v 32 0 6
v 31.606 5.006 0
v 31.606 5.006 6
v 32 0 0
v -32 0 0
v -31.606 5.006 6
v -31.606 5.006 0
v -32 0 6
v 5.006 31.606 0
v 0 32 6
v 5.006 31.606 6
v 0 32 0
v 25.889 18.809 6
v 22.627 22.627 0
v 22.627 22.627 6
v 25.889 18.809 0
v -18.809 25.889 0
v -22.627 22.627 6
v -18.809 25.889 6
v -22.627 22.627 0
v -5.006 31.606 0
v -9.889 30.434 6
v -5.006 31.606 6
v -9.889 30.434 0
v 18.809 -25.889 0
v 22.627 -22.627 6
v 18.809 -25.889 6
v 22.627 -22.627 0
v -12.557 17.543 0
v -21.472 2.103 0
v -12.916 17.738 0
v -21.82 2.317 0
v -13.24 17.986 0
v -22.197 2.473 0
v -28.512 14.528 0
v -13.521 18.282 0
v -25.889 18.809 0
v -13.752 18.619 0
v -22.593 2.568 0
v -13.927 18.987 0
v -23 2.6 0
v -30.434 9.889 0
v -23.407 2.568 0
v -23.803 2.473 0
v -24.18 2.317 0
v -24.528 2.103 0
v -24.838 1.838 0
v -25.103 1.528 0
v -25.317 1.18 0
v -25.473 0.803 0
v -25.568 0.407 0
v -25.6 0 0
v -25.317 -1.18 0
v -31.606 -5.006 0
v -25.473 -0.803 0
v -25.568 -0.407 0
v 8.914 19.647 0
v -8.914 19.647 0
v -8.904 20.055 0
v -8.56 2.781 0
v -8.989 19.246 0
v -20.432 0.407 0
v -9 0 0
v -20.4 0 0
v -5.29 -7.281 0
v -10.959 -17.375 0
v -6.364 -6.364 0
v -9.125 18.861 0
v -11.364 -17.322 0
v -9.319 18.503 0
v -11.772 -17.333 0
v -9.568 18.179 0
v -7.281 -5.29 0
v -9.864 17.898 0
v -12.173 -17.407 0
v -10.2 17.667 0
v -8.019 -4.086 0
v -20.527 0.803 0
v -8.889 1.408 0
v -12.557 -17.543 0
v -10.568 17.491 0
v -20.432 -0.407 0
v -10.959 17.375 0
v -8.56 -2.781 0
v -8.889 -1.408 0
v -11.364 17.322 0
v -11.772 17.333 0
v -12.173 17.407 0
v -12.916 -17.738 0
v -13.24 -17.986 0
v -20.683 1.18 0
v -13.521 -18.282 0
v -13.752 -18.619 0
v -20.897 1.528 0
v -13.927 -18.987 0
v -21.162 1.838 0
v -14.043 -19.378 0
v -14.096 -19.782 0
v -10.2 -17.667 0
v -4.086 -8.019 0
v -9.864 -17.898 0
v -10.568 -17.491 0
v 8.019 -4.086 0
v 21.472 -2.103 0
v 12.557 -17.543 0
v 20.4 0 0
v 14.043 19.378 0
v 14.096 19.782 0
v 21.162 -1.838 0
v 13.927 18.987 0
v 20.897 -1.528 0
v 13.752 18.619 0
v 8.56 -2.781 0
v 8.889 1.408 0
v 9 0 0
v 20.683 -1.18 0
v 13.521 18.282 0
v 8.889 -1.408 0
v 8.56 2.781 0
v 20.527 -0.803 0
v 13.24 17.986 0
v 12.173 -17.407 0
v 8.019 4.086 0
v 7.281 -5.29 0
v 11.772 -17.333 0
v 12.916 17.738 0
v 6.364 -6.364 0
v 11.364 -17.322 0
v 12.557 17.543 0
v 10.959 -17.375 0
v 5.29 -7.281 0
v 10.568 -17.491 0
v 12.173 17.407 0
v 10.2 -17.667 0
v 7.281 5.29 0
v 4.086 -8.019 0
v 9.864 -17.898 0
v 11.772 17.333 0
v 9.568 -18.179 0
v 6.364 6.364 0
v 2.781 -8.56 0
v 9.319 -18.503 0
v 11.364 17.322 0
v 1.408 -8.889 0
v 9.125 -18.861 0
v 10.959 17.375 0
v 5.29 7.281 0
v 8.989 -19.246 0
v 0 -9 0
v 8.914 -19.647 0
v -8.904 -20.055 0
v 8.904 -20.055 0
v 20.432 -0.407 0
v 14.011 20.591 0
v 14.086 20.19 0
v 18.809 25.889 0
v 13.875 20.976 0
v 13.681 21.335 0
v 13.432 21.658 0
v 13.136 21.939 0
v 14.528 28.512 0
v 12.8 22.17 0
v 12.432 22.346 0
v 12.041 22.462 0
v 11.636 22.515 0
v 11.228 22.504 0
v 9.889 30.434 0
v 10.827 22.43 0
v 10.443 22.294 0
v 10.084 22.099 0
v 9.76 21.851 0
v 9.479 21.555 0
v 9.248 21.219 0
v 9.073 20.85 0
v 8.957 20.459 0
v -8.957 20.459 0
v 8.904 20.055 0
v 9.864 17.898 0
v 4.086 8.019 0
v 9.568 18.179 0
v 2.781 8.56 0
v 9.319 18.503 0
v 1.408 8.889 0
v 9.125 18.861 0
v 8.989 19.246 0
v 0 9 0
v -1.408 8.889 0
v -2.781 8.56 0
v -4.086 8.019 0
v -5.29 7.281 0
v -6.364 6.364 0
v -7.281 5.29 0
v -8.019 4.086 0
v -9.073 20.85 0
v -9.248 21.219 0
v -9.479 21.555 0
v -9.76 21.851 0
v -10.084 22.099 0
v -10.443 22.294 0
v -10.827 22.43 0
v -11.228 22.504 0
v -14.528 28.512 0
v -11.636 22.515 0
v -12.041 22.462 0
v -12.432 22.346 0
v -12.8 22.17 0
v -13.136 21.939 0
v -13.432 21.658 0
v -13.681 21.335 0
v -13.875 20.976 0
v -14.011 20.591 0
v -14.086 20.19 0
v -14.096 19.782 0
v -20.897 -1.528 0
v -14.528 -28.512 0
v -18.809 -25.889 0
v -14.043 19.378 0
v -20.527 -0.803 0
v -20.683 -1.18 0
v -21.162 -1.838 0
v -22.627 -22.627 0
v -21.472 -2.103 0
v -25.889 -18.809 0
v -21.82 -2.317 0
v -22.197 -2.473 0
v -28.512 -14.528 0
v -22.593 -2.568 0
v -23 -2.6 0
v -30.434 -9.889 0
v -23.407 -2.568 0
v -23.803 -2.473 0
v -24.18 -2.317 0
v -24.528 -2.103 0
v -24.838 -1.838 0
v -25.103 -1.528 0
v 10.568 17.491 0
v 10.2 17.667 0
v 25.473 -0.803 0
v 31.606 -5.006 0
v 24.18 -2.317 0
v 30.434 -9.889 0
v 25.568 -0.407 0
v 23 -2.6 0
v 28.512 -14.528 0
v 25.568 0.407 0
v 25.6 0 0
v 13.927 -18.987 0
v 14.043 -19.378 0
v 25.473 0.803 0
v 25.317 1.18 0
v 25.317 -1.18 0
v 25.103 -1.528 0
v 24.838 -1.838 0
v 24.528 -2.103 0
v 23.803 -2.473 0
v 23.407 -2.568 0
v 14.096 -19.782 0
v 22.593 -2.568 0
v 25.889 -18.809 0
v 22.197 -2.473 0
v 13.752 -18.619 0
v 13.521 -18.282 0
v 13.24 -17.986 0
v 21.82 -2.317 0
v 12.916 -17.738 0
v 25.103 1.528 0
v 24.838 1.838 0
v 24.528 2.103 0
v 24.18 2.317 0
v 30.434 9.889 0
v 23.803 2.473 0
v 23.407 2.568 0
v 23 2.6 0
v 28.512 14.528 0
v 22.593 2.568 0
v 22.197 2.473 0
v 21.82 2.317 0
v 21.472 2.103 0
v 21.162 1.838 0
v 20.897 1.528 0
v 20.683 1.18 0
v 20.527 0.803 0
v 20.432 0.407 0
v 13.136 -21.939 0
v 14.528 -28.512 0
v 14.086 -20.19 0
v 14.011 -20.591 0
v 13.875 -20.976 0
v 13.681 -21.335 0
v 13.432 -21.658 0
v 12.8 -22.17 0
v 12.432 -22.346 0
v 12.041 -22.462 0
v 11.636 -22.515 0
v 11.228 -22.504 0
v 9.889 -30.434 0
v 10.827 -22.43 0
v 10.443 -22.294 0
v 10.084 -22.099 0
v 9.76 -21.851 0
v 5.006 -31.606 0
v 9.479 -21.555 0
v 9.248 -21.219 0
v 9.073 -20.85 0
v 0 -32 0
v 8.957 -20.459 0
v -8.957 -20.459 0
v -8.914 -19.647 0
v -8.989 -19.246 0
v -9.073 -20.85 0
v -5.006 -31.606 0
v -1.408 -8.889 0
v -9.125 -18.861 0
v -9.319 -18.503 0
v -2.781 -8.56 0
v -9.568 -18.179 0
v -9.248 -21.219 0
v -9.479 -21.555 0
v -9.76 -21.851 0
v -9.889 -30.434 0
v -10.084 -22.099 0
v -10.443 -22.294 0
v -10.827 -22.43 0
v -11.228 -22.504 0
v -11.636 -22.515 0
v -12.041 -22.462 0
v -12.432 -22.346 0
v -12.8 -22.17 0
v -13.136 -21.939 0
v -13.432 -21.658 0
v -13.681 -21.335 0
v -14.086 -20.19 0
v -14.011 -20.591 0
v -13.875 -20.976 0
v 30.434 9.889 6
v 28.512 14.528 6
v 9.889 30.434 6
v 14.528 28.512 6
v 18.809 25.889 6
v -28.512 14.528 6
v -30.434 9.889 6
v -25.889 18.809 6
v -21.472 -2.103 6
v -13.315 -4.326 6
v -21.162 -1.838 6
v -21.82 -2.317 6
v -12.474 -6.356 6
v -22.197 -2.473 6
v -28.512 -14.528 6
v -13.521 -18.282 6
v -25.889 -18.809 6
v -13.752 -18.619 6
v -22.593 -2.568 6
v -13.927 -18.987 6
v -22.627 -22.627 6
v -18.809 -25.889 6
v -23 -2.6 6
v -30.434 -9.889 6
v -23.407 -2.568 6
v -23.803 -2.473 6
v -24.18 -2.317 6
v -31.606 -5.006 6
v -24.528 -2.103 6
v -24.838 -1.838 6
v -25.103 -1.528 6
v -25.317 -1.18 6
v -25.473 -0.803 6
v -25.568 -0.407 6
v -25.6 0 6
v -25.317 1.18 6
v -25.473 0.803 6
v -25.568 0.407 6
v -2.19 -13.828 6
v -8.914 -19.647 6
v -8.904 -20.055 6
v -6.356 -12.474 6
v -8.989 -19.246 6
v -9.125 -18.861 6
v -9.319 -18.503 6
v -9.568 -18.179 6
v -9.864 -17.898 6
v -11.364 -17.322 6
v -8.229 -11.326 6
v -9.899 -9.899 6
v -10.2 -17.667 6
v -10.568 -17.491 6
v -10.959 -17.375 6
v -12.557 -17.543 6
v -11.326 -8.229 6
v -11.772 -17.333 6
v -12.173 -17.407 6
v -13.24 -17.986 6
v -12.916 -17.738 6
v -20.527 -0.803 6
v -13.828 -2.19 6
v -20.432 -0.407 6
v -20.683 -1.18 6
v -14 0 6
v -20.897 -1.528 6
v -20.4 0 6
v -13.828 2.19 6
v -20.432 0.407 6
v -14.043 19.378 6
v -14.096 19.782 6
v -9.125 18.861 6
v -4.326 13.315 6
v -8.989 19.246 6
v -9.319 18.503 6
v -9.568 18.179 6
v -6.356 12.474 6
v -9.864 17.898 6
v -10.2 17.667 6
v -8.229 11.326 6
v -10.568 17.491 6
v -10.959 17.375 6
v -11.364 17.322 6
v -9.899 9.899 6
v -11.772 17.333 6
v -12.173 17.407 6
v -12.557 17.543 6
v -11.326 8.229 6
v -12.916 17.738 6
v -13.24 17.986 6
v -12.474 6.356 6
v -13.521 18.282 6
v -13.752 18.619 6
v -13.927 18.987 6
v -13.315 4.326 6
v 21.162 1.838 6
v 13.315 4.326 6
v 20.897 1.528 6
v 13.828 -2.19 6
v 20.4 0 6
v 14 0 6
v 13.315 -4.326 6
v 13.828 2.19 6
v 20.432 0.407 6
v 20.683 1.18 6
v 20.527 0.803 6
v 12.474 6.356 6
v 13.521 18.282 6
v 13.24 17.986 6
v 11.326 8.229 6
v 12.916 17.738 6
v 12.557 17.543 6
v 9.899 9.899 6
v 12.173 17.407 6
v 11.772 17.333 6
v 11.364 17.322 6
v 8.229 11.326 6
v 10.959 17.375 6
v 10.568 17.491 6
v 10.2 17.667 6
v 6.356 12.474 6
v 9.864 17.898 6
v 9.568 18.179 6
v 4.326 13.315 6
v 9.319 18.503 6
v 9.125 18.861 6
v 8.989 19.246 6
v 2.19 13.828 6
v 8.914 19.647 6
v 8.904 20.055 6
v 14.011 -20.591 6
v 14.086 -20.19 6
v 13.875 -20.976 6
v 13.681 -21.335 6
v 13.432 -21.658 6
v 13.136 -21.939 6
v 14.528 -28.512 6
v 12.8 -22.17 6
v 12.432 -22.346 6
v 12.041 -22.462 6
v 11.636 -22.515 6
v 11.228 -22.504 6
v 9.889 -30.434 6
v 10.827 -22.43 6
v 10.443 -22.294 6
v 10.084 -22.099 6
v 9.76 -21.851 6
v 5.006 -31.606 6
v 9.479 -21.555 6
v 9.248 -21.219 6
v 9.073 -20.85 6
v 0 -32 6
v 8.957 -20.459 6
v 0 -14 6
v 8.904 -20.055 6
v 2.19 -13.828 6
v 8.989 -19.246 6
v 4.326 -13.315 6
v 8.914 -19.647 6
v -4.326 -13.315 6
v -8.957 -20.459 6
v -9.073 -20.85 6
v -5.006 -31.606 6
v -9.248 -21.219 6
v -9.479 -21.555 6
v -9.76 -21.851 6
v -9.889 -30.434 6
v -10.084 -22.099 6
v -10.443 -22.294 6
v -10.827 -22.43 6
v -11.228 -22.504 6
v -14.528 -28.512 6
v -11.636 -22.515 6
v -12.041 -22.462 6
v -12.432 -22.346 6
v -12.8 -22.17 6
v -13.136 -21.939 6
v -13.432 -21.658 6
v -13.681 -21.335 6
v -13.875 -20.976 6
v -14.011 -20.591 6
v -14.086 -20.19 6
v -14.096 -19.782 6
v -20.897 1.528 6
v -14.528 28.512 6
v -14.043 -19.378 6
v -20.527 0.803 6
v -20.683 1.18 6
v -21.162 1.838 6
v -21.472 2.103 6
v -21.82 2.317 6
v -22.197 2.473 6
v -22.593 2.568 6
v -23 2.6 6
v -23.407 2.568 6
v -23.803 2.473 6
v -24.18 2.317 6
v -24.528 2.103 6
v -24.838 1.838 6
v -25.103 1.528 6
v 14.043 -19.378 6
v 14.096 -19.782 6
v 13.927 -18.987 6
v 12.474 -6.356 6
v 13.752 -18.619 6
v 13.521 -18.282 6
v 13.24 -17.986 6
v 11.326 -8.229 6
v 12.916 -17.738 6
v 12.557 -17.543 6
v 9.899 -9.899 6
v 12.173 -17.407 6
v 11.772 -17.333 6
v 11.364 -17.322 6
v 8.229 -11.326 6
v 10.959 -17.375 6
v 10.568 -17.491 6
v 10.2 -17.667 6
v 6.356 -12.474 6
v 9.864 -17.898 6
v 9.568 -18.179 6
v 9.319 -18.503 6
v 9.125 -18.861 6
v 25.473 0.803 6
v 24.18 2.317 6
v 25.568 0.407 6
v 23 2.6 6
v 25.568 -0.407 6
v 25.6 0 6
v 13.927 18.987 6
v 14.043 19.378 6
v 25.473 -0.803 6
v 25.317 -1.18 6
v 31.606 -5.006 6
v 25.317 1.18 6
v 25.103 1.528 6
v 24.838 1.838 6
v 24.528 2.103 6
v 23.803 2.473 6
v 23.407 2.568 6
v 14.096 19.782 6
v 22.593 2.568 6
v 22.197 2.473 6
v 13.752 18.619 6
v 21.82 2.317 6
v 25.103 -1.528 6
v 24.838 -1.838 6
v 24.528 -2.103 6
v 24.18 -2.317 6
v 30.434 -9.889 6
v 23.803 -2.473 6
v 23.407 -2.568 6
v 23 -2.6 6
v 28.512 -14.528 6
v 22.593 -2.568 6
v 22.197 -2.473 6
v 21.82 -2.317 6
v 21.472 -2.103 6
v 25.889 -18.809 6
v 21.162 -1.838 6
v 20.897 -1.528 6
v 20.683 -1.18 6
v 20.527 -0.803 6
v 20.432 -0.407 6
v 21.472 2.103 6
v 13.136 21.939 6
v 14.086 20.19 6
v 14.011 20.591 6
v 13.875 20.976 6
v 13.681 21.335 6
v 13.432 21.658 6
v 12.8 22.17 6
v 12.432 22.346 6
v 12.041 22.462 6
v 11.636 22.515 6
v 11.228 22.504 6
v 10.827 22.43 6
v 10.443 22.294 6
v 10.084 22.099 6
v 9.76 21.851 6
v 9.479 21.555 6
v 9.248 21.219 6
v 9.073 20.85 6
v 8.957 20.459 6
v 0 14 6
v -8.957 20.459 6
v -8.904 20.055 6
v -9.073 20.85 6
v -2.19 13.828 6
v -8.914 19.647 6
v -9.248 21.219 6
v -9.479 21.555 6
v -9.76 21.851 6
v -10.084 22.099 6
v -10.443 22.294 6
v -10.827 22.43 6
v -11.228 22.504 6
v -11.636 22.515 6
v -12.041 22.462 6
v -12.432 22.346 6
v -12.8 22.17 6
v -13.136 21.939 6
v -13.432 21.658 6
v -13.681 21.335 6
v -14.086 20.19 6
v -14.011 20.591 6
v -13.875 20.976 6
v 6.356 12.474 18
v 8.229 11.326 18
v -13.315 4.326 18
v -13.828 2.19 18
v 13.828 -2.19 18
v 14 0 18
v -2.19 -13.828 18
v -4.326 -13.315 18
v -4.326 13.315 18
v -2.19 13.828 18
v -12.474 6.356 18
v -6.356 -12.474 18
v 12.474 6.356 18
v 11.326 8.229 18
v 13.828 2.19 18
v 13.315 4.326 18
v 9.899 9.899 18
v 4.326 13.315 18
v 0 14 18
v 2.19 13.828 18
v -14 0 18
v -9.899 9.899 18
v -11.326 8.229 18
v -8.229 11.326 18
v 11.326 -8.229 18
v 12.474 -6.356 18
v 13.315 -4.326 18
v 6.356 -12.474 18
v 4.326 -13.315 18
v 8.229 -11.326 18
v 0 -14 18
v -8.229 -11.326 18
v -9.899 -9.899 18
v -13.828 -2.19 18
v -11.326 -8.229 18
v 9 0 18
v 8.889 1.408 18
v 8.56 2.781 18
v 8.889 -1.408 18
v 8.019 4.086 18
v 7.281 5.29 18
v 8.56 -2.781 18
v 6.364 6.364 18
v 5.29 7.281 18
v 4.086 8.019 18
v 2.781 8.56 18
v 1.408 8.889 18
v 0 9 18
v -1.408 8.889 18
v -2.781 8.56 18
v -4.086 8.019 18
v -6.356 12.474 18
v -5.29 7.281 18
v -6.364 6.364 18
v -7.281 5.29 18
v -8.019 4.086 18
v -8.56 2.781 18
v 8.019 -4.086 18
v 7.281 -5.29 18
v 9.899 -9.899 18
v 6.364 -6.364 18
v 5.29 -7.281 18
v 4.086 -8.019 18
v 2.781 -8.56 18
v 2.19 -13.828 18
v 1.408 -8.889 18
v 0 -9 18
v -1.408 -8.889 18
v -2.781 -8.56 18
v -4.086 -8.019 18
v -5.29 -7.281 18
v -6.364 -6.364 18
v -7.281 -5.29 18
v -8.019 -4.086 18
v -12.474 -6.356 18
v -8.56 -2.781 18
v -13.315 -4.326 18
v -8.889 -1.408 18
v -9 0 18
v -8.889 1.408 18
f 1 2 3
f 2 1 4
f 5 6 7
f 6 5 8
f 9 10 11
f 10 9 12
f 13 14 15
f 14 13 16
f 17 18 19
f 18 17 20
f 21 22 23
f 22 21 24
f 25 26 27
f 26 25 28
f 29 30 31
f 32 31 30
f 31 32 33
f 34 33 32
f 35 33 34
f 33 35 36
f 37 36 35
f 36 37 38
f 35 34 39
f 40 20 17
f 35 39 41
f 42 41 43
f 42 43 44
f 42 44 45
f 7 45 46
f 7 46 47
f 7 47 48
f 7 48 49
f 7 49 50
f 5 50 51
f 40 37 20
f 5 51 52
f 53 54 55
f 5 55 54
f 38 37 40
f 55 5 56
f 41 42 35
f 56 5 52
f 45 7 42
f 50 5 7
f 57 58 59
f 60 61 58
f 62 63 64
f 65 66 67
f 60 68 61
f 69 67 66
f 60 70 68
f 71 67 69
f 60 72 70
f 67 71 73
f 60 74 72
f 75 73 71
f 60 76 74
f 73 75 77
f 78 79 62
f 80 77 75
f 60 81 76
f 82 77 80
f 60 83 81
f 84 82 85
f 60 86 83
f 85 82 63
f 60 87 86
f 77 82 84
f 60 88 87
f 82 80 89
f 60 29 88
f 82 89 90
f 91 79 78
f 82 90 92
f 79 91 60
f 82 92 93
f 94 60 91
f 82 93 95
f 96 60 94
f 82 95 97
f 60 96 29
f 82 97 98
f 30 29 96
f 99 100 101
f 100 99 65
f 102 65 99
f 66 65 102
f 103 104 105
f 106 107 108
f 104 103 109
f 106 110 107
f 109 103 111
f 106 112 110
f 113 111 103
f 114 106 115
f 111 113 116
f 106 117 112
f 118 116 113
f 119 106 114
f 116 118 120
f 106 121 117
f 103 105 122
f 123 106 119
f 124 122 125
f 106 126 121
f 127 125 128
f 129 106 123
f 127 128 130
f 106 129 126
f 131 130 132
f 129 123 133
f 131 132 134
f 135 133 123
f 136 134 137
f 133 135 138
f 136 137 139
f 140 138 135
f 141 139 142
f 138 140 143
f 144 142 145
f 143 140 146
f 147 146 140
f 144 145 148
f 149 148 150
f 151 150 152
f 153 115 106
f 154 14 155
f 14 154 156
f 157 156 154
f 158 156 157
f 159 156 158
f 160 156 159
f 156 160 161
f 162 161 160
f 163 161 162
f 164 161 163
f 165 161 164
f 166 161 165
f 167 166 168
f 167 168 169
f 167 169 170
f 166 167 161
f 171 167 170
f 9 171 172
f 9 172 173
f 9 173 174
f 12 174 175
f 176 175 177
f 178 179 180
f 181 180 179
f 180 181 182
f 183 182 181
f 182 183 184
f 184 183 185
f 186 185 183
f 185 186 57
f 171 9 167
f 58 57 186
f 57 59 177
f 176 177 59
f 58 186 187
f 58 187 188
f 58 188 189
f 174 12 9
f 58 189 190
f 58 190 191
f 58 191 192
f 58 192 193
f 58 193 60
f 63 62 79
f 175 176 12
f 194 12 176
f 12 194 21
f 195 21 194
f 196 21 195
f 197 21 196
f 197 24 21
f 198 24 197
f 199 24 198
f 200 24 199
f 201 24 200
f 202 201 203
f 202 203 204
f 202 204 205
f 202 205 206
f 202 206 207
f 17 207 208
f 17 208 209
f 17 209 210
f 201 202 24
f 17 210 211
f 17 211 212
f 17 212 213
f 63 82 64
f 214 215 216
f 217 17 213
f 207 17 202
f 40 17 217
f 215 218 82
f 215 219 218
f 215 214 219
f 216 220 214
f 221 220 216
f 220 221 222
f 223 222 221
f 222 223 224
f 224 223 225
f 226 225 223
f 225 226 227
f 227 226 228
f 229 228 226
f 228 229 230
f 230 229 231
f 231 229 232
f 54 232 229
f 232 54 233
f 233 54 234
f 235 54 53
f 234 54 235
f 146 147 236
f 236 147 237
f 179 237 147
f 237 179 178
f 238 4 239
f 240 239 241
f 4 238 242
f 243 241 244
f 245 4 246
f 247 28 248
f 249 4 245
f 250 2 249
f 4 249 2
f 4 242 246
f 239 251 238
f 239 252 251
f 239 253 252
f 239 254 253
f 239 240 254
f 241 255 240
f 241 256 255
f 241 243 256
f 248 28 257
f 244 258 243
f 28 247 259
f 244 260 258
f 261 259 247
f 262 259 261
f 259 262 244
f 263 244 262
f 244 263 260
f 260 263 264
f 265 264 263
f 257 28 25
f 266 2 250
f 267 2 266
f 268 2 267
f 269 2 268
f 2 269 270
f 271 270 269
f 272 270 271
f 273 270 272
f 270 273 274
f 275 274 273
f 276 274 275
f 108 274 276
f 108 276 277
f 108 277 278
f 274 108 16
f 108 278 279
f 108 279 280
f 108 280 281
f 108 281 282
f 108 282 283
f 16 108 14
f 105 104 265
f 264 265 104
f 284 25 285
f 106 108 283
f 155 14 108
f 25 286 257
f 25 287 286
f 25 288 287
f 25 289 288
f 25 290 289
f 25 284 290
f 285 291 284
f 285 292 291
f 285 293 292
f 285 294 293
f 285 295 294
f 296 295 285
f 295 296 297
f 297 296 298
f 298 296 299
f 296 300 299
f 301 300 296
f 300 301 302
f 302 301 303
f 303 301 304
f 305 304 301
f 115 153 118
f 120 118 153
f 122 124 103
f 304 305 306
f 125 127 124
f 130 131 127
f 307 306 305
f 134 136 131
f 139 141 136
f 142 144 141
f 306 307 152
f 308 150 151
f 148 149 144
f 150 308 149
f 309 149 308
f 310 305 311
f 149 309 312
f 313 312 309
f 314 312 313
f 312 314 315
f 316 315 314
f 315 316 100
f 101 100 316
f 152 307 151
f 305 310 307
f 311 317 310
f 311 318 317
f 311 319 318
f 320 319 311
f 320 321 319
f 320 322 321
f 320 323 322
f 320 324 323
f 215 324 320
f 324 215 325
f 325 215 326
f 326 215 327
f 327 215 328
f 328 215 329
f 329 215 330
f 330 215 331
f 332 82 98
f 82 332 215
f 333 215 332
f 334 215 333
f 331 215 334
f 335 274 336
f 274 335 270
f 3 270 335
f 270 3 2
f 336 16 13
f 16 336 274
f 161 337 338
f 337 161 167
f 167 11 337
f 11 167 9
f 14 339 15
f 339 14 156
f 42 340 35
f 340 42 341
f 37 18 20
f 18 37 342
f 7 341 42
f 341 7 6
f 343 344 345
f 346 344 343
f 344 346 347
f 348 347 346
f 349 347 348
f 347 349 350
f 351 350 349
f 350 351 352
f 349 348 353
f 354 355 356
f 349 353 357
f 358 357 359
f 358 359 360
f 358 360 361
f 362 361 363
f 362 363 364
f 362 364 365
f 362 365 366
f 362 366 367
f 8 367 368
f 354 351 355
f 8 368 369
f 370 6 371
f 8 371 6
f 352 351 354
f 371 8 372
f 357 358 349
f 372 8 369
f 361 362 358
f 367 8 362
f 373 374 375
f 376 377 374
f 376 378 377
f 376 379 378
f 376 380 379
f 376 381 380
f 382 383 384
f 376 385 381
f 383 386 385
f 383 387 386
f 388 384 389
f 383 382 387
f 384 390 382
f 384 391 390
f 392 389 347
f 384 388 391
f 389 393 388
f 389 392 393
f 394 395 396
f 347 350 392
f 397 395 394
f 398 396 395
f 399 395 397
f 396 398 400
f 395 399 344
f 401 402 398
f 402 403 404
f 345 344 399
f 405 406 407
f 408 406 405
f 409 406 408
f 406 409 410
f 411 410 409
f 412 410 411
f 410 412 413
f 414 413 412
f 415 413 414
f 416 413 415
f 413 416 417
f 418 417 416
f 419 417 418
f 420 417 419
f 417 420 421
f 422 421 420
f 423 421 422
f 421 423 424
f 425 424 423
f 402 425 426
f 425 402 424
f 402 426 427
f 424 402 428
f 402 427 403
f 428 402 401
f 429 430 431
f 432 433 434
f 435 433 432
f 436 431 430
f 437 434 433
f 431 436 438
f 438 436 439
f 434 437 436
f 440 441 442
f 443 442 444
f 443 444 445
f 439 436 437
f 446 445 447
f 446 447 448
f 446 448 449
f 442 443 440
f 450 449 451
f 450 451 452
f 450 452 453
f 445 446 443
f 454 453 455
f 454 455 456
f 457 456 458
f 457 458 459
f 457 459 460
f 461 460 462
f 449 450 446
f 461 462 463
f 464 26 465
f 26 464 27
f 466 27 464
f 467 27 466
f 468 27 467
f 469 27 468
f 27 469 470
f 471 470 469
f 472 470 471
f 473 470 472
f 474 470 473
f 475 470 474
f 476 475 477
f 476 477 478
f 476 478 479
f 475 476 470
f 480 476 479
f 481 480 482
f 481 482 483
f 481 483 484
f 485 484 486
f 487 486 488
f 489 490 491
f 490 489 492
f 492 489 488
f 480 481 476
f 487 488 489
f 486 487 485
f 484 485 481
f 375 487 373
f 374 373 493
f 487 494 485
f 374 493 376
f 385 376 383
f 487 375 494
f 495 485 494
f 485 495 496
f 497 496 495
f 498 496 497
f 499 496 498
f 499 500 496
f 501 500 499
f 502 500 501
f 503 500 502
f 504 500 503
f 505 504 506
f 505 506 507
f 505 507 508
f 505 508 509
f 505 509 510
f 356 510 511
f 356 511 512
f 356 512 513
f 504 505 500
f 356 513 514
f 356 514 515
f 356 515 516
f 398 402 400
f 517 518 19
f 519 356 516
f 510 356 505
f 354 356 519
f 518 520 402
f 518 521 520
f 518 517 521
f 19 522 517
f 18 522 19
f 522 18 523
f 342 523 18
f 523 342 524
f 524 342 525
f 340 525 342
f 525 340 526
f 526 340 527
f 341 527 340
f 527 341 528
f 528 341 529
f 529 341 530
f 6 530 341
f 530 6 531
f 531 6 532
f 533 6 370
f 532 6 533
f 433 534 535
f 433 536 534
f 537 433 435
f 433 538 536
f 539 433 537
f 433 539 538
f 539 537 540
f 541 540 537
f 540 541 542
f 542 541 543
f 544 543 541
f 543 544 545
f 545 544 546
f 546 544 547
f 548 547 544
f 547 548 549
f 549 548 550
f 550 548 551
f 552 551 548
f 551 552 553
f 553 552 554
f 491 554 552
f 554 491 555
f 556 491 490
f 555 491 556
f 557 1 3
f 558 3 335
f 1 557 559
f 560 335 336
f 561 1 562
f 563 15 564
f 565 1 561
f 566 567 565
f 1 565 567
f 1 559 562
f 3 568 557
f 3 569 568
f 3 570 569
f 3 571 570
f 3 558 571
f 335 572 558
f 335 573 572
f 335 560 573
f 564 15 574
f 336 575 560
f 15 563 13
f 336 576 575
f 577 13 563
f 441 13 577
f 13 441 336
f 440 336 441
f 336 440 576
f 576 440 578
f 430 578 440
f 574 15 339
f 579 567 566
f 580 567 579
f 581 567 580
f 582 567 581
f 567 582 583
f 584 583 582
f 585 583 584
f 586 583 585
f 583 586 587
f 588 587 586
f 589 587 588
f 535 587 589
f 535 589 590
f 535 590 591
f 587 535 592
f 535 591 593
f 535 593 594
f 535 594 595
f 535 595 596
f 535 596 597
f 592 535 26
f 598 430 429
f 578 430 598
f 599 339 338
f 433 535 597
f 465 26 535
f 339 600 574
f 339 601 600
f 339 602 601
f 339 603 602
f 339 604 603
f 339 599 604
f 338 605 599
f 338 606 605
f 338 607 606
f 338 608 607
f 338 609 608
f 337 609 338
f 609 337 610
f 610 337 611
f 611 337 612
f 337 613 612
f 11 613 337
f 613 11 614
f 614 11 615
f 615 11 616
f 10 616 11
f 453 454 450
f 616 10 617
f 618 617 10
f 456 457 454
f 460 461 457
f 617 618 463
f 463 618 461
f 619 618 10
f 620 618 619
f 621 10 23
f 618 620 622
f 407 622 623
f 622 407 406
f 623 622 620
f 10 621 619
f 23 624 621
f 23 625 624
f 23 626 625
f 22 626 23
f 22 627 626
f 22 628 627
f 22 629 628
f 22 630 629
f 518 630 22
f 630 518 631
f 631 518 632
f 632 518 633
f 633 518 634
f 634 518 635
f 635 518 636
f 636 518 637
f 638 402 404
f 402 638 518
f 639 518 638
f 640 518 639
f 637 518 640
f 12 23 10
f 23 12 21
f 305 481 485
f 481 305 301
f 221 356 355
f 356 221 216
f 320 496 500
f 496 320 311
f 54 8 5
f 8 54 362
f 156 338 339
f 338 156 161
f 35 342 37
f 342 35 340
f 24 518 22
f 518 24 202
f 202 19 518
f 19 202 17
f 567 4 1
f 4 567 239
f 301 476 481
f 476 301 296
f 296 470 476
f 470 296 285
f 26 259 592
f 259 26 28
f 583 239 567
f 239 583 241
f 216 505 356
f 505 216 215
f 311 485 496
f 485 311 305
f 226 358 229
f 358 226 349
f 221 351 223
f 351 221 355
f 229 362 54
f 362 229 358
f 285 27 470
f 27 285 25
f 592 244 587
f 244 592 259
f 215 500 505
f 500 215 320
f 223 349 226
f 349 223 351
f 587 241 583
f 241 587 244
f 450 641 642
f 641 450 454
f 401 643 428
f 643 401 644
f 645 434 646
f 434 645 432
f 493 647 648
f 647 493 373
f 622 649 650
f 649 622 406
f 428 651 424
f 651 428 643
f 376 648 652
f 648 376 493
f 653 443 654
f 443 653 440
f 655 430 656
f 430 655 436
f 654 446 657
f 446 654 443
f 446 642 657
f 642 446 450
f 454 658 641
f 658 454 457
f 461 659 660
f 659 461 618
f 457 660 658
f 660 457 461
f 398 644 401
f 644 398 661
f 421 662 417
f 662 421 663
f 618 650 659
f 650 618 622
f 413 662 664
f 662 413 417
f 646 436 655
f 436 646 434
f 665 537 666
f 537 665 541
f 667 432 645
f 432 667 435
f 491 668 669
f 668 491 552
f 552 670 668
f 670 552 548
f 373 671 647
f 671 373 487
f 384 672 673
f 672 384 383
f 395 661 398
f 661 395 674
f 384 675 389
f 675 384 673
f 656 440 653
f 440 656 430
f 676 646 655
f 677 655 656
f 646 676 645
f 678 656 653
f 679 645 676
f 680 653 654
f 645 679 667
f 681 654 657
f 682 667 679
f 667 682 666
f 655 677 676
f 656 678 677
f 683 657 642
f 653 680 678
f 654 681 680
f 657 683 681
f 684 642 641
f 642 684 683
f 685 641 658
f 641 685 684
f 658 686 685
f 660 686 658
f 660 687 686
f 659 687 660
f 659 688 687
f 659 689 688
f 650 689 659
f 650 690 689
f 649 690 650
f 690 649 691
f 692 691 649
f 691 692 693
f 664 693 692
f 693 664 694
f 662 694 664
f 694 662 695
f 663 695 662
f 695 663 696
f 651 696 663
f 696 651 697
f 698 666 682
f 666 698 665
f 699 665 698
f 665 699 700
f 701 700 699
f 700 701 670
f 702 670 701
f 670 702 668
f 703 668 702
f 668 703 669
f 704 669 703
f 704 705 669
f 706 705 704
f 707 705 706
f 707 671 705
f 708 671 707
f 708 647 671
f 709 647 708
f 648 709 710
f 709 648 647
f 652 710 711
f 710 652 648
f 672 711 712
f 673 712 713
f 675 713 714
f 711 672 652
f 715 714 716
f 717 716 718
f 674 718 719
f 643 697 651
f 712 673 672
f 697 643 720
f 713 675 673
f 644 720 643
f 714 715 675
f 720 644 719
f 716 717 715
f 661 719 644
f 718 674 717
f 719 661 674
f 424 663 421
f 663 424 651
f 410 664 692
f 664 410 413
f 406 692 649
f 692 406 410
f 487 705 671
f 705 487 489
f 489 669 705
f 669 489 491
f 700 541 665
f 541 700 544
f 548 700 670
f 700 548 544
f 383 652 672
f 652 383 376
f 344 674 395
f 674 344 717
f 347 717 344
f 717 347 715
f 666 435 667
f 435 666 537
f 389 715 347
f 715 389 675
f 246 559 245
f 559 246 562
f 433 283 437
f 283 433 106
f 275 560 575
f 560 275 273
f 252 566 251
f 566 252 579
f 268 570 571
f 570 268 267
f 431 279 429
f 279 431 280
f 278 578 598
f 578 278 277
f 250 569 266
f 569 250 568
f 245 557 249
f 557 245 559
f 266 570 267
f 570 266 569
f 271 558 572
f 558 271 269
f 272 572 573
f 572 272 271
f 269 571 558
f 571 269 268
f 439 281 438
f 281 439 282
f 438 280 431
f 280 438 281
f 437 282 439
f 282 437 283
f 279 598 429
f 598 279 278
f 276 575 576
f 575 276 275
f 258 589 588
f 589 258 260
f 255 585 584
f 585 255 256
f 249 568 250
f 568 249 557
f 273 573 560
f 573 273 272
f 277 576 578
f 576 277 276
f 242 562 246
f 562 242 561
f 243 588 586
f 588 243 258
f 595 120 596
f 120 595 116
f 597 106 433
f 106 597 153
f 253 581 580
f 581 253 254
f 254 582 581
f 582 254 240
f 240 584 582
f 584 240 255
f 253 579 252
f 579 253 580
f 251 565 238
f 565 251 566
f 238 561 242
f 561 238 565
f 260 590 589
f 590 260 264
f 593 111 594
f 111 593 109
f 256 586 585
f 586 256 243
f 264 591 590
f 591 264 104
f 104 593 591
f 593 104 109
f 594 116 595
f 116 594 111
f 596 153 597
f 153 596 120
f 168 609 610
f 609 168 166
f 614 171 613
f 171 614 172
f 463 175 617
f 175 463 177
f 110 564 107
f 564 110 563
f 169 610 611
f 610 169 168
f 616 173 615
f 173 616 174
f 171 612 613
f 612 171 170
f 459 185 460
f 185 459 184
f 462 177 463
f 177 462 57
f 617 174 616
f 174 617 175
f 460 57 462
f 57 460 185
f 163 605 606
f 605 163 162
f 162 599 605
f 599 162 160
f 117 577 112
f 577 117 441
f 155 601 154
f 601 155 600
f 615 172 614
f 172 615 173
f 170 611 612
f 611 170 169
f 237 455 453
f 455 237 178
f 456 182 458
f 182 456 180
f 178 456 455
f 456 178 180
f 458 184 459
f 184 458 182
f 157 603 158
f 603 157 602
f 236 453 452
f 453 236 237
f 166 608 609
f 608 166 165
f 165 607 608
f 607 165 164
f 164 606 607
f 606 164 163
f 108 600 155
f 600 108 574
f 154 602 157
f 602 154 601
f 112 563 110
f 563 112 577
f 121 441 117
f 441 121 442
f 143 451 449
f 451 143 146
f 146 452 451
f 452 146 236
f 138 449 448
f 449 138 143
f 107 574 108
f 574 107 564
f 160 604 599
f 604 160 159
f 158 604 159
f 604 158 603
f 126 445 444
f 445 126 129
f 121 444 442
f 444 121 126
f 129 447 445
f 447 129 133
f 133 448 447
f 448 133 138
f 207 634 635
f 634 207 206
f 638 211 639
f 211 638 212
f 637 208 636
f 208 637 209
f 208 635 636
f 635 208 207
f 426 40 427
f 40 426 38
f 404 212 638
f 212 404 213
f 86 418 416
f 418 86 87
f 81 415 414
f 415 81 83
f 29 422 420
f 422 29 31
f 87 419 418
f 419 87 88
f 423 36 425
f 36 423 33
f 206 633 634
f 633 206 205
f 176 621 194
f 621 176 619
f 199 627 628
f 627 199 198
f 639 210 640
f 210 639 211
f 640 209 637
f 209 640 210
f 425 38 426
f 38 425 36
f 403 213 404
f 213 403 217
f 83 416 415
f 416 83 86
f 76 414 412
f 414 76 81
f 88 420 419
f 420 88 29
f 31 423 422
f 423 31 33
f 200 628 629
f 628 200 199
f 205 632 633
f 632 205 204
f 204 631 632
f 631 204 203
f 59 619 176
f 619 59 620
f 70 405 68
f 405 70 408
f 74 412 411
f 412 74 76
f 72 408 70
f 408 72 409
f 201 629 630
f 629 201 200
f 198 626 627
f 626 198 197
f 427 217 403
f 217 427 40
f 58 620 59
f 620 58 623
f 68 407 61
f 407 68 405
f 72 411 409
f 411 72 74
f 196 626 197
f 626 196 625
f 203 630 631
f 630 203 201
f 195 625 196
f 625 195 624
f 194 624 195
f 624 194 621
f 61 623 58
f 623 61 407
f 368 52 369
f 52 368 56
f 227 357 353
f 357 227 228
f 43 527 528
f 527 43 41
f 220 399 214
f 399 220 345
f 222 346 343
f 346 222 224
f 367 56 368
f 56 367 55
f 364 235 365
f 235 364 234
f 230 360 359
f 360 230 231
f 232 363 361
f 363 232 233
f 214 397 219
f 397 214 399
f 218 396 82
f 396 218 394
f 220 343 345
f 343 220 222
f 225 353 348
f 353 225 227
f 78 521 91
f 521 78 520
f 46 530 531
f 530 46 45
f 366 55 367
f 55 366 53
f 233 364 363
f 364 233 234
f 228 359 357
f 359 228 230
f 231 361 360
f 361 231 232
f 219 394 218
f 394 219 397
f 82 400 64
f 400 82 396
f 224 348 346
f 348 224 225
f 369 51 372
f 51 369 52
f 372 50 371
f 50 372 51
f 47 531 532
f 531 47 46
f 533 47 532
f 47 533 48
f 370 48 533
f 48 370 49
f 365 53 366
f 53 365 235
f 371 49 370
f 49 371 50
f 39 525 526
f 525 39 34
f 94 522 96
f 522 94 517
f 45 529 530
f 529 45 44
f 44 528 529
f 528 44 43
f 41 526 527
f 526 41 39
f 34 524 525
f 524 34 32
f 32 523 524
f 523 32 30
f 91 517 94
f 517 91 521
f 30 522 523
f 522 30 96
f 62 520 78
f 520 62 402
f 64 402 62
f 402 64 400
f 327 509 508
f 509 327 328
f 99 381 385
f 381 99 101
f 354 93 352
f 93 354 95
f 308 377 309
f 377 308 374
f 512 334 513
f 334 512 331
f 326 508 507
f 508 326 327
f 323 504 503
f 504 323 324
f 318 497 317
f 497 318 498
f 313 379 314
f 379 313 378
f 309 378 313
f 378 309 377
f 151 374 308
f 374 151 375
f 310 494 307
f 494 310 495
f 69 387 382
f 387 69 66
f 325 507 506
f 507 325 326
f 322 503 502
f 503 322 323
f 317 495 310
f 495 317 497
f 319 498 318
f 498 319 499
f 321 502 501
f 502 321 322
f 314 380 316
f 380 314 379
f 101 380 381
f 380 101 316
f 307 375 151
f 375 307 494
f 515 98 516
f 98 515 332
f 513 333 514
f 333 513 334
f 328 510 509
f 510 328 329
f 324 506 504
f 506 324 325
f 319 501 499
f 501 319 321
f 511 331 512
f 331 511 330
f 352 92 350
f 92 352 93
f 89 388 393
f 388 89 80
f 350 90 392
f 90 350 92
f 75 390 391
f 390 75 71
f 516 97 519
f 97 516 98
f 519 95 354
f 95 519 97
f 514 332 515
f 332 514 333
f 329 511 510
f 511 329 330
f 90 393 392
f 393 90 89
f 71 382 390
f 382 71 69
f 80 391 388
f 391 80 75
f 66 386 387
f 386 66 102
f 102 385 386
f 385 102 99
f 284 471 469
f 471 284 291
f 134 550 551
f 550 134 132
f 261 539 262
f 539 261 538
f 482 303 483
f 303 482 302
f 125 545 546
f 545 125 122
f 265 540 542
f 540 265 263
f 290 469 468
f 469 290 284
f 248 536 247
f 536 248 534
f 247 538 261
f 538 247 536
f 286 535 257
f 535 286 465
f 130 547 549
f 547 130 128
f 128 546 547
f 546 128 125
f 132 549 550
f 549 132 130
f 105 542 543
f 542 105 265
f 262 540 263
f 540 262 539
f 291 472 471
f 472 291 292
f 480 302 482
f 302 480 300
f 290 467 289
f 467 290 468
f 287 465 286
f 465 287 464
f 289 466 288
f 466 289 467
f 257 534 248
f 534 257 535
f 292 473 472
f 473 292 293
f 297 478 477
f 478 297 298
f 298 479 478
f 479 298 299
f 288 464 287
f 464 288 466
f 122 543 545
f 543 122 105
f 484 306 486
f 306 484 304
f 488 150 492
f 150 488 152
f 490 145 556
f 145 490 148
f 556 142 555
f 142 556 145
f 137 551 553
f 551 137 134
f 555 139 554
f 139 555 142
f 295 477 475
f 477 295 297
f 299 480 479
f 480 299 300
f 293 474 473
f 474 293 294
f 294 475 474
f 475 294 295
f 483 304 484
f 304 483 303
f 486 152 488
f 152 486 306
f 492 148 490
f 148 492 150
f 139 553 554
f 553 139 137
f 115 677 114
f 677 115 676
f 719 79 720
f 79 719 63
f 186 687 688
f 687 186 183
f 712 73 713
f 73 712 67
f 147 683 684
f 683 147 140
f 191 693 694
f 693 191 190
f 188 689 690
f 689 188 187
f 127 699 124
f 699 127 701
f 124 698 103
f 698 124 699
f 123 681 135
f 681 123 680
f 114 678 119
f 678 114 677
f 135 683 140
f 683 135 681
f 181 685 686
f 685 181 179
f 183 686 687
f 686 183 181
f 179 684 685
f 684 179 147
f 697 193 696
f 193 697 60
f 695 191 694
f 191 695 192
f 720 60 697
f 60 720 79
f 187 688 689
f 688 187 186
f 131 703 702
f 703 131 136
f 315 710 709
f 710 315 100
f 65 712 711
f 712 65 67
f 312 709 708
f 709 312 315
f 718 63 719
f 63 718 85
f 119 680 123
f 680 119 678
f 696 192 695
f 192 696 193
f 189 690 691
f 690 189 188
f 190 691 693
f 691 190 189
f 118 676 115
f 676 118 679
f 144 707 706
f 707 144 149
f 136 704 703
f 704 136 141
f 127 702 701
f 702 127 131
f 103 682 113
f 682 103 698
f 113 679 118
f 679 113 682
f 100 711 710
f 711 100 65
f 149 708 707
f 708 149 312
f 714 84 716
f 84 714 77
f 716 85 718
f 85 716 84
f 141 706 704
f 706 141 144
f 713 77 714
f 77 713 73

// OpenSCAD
// Checkpoint 4a - Flange with a circular bolt pattern driven by one parameter.
$fn = 40;
BOLTS = 6;
PCD = 46;
difference() {
  union() {
    cylinder(h = 6, r = 32);
    cylinder(h = 18, r = 14);
  }
  translate([0, 0, -1]) cylinder(h = 22, r = 9);
  for (i = [0 : BOLTS - 1])
    rotate([0, 0, i * 360 / BOLTS])
      translate([PCD / 2, 0, -1])
        cylinder(h = 8, r = 2.6);
}
